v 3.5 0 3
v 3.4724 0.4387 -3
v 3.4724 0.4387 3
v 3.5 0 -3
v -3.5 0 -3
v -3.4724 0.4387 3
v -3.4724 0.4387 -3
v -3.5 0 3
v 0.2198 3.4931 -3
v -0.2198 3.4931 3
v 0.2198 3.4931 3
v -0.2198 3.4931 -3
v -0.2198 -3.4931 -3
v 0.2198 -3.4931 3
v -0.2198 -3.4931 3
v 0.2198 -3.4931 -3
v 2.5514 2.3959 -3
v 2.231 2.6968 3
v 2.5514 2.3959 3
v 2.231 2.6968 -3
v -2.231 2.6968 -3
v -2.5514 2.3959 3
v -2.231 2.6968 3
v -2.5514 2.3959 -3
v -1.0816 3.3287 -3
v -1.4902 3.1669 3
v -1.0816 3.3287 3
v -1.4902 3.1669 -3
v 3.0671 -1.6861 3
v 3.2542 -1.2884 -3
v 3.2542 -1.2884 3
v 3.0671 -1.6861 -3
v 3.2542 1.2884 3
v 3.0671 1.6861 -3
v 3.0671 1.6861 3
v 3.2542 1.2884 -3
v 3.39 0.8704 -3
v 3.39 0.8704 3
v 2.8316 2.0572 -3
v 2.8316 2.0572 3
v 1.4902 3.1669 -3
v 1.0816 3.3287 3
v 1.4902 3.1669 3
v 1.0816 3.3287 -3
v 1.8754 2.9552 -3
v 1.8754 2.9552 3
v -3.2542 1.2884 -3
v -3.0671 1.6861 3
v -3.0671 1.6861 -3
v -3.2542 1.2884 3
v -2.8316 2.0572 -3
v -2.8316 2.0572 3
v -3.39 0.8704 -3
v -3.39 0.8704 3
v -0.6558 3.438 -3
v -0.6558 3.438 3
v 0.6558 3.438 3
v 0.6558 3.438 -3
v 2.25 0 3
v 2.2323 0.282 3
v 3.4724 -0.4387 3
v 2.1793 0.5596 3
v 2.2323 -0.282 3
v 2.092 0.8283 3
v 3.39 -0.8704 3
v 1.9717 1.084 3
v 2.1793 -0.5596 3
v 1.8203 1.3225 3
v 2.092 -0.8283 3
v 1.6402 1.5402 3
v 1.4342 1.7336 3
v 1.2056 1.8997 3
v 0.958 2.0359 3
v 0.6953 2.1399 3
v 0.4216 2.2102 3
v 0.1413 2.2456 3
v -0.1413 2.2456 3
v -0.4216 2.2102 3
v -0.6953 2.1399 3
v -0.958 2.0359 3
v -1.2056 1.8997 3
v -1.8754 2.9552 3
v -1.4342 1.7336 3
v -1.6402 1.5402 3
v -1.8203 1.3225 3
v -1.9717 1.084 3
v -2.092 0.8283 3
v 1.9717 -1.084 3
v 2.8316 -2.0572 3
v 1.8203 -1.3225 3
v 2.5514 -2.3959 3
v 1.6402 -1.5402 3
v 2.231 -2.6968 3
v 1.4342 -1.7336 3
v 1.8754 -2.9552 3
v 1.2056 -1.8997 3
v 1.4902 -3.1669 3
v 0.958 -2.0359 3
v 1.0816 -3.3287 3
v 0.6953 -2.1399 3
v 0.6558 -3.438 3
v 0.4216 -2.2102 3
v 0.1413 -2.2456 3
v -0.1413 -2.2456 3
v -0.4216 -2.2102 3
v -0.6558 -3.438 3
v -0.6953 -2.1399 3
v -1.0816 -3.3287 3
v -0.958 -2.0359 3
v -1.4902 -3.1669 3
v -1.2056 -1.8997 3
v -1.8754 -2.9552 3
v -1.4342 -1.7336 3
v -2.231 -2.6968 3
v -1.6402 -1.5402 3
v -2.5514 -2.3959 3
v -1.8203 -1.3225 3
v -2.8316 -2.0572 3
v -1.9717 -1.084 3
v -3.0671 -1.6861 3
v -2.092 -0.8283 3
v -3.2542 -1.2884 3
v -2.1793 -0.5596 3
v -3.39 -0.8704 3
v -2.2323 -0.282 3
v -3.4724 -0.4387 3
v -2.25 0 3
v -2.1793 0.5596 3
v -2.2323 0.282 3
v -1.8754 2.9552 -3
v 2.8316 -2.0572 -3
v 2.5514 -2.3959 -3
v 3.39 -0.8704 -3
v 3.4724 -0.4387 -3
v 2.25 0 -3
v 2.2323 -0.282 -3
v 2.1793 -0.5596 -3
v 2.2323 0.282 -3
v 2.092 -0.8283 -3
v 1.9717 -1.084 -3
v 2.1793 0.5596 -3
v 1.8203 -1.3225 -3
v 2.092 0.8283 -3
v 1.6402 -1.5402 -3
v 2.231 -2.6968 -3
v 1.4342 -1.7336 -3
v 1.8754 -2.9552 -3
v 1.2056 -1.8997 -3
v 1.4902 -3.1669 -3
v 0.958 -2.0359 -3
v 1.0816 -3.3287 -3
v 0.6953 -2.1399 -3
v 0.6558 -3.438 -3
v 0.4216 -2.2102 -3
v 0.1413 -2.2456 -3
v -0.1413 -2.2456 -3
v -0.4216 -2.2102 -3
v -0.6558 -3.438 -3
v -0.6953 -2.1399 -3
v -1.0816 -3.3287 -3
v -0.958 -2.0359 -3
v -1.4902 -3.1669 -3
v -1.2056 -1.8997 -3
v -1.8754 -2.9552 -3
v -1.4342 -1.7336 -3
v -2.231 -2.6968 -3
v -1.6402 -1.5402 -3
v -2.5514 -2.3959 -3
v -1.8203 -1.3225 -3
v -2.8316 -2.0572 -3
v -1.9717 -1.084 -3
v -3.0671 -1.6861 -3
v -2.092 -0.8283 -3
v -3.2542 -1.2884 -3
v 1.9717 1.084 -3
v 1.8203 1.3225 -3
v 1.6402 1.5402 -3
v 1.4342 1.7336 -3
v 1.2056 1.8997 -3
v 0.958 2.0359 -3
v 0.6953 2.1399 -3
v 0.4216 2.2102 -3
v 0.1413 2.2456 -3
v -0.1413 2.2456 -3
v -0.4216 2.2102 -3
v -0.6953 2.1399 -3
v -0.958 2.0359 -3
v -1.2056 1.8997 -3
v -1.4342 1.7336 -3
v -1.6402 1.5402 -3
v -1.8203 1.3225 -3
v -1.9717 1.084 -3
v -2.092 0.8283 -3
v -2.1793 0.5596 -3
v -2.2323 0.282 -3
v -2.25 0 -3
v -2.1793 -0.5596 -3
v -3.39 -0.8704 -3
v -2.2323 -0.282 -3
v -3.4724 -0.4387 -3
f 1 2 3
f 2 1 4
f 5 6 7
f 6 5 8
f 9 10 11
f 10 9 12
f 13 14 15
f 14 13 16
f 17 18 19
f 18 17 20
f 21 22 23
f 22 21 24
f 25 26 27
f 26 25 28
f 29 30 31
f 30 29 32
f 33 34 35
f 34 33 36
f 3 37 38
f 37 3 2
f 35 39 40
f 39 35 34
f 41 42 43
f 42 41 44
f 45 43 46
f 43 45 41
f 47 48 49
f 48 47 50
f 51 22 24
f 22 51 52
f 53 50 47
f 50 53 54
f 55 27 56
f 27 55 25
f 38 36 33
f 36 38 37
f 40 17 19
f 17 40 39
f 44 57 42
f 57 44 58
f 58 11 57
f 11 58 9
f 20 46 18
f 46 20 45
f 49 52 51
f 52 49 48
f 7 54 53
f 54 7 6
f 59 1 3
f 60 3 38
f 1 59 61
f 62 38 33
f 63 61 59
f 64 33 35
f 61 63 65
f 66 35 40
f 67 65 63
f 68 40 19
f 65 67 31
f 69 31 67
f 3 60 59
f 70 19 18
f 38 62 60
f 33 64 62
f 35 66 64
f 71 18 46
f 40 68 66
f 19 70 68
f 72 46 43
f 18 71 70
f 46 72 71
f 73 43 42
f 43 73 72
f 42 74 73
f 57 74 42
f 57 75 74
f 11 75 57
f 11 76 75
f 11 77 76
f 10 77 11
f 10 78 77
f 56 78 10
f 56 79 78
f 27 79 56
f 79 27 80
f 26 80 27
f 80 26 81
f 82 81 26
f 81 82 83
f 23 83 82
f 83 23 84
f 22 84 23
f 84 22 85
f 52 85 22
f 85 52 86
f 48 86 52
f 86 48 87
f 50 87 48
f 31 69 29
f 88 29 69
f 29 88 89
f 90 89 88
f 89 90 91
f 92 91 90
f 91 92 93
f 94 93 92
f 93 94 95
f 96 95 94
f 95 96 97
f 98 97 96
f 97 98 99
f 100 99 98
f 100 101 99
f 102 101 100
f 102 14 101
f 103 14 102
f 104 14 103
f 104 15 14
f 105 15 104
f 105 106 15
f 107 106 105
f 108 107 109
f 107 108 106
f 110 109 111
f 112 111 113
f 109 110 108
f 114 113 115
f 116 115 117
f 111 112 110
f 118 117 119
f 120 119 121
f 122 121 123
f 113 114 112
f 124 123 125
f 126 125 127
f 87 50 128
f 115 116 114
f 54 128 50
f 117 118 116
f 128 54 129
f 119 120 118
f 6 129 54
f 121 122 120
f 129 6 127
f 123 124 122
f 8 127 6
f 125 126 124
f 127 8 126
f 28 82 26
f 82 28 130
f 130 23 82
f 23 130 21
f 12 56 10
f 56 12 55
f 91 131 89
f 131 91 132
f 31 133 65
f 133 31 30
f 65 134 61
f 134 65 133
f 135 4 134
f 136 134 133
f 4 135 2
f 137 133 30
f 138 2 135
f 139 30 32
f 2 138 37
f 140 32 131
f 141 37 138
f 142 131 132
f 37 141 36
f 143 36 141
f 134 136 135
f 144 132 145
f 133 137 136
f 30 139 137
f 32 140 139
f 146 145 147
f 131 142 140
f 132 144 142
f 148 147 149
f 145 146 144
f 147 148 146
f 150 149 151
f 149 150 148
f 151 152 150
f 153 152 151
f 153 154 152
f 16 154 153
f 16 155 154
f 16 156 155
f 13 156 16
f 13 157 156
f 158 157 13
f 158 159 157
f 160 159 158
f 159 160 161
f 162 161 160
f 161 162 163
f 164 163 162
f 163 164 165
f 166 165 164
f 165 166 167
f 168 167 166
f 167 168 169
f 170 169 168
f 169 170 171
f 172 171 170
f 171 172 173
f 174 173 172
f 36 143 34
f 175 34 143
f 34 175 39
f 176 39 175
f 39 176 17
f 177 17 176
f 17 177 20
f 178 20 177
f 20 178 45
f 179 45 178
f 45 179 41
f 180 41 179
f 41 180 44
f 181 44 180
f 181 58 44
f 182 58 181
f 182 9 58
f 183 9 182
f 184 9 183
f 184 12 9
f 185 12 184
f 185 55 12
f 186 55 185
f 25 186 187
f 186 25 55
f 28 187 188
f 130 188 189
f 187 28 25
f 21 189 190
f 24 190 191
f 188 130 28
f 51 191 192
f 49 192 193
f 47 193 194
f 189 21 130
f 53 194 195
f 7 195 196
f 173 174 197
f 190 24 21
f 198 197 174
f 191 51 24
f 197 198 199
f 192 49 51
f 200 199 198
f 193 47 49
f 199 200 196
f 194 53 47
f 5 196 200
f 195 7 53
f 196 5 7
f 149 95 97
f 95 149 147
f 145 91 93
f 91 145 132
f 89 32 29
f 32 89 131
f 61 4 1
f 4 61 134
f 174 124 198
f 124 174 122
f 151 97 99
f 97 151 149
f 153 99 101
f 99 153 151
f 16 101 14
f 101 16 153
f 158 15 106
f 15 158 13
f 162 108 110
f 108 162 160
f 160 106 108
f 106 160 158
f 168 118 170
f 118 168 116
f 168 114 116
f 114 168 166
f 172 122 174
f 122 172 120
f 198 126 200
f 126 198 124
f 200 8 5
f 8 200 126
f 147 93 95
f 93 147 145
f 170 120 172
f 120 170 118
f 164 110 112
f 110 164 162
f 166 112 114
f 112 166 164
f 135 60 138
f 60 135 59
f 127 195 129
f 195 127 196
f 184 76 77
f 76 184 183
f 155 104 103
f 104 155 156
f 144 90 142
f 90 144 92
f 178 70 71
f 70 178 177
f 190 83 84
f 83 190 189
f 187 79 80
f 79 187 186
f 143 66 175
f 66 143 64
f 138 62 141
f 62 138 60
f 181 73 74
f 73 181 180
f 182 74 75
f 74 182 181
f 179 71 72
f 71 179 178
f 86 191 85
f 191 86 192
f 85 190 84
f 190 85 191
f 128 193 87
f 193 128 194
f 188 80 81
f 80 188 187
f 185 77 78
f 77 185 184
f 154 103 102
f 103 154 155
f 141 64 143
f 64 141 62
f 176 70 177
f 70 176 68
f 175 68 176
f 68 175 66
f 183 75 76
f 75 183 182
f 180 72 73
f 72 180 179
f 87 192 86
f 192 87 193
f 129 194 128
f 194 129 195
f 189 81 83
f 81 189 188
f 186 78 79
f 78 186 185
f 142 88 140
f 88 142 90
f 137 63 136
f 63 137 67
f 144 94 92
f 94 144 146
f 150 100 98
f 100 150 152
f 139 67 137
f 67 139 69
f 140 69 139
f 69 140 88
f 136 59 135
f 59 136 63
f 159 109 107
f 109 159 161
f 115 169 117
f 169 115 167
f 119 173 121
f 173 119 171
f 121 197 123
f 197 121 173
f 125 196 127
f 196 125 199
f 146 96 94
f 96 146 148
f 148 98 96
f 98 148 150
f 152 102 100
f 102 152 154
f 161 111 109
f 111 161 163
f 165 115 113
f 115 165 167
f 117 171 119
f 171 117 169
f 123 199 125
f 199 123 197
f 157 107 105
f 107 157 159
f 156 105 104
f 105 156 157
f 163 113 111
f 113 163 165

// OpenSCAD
$fn = 50;


difference() {
	union() {
		translate(v = [0, 0, -3.0000000000]) {
			cylinder(h = 6, r = 3.5000000000);
		}
	}
	union() {
		translate(v = [0, 0, -100.0000000000]) {
			cylinder(h = 200, r = 2.2500000000);
		}
	}
}
